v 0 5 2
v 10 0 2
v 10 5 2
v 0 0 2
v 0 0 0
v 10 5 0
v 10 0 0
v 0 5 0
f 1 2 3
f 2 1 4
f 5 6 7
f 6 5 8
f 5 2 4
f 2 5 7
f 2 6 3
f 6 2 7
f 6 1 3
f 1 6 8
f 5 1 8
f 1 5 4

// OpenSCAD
module box(width, height, depth, thickness) {
  cube([width, height, depth]);
}

thickness = 1;
box(10, 5, 2, thickness);
